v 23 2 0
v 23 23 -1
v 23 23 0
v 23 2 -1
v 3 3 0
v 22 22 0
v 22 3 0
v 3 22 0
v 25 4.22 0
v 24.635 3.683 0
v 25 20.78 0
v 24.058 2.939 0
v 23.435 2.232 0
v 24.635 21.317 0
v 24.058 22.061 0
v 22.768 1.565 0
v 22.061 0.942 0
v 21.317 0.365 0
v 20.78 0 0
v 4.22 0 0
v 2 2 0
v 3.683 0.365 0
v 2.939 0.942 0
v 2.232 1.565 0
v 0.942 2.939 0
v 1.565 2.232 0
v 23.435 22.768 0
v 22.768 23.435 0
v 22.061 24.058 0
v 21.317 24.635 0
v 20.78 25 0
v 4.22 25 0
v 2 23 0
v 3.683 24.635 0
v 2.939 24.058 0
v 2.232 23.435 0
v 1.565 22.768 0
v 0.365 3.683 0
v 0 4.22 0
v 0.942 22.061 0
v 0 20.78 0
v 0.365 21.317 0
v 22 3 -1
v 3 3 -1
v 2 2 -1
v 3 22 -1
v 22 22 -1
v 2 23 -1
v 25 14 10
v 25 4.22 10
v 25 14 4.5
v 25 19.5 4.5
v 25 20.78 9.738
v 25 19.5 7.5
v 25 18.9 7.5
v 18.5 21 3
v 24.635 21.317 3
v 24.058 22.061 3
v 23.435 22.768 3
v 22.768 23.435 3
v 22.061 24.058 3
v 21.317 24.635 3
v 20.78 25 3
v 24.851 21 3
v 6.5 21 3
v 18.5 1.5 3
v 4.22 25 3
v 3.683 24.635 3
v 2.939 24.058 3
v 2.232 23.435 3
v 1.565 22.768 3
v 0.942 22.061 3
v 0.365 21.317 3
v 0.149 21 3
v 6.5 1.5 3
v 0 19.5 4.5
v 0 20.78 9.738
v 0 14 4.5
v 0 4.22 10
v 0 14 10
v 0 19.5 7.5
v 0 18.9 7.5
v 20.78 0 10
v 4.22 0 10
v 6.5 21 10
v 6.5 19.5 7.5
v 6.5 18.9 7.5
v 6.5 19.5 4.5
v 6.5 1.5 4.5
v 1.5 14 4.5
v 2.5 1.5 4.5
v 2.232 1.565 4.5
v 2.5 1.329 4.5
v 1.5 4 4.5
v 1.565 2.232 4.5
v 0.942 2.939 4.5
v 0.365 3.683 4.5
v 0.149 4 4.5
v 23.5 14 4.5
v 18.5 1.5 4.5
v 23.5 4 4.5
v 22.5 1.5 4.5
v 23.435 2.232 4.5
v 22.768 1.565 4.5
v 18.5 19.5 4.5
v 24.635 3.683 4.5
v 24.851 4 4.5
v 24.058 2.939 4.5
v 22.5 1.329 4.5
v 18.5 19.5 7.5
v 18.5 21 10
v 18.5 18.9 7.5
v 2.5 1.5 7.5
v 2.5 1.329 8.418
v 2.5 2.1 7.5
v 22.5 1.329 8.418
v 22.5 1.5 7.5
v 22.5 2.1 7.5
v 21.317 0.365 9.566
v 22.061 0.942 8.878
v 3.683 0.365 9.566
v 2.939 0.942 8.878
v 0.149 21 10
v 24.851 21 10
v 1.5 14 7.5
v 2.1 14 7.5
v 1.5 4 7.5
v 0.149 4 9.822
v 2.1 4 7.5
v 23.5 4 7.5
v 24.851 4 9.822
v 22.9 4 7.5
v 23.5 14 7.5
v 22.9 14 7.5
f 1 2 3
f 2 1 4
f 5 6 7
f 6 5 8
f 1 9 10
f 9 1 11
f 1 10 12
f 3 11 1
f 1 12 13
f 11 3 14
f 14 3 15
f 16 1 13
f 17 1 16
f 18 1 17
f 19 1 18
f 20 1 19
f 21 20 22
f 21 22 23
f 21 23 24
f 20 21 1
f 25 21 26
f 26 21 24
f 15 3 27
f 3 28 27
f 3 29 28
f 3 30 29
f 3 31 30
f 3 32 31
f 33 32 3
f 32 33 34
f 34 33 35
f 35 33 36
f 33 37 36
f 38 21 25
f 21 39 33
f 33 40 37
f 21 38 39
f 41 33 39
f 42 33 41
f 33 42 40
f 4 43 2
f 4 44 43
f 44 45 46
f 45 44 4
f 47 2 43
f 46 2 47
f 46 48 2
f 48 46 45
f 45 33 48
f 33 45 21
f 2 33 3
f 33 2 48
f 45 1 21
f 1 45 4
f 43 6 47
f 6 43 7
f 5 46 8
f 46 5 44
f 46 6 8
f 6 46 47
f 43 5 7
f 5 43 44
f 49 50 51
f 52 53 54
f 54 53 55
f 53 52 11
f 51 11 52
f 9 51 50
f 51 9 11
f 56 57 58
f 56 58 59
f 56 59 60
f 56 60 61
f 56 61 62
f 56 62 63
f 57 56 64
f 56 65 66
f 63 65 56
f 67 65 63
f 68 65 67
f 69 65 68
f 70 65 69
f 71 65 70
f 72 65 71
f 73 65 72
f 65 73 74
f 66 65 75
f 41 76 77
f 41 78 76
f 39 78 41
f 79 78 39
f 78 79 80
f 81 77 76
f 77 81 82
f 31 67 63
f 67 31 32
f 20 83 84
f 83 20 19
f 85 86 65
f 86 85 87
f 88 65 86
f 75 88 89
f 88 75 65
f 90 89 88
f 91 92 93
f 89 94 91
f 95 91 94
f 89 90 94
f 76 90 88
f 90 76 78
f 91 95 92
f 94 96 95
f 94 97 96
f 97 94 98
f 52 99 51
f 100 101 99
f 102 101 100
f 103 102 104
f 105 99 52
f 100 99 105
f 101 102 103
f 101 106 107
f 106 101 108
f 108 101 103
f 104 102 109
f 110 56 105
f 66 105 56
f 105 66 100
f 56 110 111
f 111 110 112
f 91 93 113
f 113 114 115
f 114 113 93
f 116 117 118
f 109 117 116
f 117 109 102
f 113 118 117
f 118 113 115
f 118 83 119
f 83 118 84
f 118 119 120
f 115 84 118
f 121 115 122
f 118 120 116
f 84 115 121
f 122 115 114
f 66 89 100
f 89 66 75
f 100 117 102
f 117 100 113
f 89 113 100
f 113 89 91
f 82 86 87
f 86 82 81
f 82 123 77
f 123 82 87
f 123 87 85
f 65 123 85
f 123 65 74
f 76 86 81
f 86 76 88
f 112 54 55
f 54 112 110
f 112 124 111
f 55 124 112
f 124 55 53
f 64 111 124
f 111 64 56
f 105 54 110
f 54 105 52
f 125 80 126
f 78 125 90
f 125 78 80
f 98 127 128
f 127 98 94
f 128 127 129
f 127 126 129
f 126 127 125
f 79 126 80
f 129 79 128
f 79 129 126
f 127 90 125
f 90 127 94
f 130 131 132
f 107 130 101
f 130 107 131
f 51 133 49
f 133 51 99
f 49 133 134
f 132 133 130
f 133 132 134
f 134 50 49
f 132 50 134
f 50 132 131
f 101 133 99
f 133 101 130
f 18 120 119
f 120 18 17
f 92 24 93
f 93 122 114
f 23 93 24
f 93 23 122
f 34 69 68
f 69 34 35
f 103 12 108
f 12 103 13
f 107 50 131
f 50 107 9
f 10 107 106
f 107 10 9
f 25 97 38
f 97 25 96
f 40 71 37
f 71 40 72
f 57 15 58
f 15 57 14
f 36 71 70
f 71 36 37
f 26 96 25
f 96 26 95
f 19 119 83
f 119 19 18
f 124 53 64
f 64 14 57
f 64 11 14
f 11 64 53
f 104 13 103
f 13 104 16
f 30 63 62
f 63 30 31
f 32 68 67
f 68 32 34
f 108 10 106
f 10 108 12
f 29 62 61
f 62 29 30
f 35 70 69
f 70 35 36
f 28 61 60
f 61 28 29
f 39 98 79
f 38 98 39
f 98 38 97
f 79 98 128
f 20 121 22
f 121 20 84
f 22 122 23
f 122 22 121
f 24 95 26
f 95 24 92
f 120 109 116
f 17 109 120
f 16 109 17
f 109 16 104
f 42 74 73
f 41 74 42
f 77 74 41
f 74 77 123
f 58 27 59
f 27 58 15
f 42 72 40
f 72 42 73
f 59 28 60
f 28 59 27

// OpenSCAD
eps=0.1;

module clip(length){
    linear_extrude(height=length,center=false, convexity=10, twist = 0) polygon(points = [[0,0], [0,10], [2.1,7.5],[1.5,7.5],[1.5,0]], paths = [[0,1,2,3,4]], convexity = 10);
}

intersection() {
    union() {
        // base
        cube([25,25,3]);


        // banks
        cube([6.5, 20, 4.5]);
        translate([25-6.5, 0, 0]) cube([6.5, 20, 4.5]);



        // walls
        translate([2.5,0,0]) rotate([90,0,90]) clip(length=20);
        translate([6.5,21,0]) rotate([90,0,270]) clip(6.5);
        translate([25,21,0]) rotate([90,0,270]) clip(6.5);

        // clips
        translate([0,14,0]) rotate([90,0,0]) clip(length=10);

        translate([25,4,0]) rotate([90,0,180]) clip(length=10);

        // soft part holder
        difference() {
            translate([2,2,-1])cube([21,21,1]);
            translate([3,3,-1.05])cube([19,19,1.05]);
        }
    }
    translate([12.5,12.5,-5])cylinder(h=20, d=30, $fn=100);
}
